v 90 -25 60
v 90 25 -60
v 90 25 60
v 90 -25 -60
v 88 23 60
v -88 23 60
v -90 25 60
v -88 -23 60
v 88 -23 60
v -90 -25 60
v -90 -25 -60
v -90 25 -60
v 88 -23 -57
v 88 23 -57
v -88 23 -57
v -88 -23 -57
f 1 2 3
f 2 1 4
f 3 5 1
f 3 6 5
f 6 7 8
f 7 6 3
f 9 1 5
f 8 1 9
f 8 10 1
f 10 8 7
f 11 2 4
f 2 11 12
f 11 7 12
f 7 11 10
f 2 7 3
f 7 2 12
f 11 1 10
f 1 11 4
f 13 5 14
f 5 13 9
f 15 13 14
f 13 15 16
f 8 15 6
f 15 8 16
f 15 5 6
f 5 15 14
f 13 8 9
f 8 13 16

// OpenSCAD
// file: ParametricDrawerSettings.scad
/* [ Parametric 3 drawer box v.1 ]
written by: Hermes Alvarado <hermesalvarado@gmail.com
*/

//Define main dimensions:
thickness = 2 ;
bottomthickness = 2;
boxwidth = 180;
boxheight = 50;
boxdepth = 120;
tolerance = .4;
//Handle dimension:
handlewidth = 12;
handledepth = 6;
//Automatic definitions:
//holeheight = (boxheight/3)-(thickness*1.3333);
//holeheight = (boxheight)-(thickness*1.3333);
holeheight = (boxheight)-(thickness);
drawerwidth = boxwidth-(thickness*2)-(tolerance*2);
drawerheight = holeheight-tolerance*2;
drawerdepth = boxdepth-bottomthickness;
drawerpositionY = boxheight*.75+drawerdepth/2;
drawerpositionX = boxwidth*.75+drawerwidth/2;
// main file
include <ParametricDrawerSettings.scad>

//Making box:
difference(){
    cube([boxwidth,boxheight,boxdepth],true);

    translate([0,0,bottomthickness]){
            cube([(boxwidth-(thickness*2)),(boxheight-(thickness*2)),(boxdepth-bottomthickness)],true);
    }
}
